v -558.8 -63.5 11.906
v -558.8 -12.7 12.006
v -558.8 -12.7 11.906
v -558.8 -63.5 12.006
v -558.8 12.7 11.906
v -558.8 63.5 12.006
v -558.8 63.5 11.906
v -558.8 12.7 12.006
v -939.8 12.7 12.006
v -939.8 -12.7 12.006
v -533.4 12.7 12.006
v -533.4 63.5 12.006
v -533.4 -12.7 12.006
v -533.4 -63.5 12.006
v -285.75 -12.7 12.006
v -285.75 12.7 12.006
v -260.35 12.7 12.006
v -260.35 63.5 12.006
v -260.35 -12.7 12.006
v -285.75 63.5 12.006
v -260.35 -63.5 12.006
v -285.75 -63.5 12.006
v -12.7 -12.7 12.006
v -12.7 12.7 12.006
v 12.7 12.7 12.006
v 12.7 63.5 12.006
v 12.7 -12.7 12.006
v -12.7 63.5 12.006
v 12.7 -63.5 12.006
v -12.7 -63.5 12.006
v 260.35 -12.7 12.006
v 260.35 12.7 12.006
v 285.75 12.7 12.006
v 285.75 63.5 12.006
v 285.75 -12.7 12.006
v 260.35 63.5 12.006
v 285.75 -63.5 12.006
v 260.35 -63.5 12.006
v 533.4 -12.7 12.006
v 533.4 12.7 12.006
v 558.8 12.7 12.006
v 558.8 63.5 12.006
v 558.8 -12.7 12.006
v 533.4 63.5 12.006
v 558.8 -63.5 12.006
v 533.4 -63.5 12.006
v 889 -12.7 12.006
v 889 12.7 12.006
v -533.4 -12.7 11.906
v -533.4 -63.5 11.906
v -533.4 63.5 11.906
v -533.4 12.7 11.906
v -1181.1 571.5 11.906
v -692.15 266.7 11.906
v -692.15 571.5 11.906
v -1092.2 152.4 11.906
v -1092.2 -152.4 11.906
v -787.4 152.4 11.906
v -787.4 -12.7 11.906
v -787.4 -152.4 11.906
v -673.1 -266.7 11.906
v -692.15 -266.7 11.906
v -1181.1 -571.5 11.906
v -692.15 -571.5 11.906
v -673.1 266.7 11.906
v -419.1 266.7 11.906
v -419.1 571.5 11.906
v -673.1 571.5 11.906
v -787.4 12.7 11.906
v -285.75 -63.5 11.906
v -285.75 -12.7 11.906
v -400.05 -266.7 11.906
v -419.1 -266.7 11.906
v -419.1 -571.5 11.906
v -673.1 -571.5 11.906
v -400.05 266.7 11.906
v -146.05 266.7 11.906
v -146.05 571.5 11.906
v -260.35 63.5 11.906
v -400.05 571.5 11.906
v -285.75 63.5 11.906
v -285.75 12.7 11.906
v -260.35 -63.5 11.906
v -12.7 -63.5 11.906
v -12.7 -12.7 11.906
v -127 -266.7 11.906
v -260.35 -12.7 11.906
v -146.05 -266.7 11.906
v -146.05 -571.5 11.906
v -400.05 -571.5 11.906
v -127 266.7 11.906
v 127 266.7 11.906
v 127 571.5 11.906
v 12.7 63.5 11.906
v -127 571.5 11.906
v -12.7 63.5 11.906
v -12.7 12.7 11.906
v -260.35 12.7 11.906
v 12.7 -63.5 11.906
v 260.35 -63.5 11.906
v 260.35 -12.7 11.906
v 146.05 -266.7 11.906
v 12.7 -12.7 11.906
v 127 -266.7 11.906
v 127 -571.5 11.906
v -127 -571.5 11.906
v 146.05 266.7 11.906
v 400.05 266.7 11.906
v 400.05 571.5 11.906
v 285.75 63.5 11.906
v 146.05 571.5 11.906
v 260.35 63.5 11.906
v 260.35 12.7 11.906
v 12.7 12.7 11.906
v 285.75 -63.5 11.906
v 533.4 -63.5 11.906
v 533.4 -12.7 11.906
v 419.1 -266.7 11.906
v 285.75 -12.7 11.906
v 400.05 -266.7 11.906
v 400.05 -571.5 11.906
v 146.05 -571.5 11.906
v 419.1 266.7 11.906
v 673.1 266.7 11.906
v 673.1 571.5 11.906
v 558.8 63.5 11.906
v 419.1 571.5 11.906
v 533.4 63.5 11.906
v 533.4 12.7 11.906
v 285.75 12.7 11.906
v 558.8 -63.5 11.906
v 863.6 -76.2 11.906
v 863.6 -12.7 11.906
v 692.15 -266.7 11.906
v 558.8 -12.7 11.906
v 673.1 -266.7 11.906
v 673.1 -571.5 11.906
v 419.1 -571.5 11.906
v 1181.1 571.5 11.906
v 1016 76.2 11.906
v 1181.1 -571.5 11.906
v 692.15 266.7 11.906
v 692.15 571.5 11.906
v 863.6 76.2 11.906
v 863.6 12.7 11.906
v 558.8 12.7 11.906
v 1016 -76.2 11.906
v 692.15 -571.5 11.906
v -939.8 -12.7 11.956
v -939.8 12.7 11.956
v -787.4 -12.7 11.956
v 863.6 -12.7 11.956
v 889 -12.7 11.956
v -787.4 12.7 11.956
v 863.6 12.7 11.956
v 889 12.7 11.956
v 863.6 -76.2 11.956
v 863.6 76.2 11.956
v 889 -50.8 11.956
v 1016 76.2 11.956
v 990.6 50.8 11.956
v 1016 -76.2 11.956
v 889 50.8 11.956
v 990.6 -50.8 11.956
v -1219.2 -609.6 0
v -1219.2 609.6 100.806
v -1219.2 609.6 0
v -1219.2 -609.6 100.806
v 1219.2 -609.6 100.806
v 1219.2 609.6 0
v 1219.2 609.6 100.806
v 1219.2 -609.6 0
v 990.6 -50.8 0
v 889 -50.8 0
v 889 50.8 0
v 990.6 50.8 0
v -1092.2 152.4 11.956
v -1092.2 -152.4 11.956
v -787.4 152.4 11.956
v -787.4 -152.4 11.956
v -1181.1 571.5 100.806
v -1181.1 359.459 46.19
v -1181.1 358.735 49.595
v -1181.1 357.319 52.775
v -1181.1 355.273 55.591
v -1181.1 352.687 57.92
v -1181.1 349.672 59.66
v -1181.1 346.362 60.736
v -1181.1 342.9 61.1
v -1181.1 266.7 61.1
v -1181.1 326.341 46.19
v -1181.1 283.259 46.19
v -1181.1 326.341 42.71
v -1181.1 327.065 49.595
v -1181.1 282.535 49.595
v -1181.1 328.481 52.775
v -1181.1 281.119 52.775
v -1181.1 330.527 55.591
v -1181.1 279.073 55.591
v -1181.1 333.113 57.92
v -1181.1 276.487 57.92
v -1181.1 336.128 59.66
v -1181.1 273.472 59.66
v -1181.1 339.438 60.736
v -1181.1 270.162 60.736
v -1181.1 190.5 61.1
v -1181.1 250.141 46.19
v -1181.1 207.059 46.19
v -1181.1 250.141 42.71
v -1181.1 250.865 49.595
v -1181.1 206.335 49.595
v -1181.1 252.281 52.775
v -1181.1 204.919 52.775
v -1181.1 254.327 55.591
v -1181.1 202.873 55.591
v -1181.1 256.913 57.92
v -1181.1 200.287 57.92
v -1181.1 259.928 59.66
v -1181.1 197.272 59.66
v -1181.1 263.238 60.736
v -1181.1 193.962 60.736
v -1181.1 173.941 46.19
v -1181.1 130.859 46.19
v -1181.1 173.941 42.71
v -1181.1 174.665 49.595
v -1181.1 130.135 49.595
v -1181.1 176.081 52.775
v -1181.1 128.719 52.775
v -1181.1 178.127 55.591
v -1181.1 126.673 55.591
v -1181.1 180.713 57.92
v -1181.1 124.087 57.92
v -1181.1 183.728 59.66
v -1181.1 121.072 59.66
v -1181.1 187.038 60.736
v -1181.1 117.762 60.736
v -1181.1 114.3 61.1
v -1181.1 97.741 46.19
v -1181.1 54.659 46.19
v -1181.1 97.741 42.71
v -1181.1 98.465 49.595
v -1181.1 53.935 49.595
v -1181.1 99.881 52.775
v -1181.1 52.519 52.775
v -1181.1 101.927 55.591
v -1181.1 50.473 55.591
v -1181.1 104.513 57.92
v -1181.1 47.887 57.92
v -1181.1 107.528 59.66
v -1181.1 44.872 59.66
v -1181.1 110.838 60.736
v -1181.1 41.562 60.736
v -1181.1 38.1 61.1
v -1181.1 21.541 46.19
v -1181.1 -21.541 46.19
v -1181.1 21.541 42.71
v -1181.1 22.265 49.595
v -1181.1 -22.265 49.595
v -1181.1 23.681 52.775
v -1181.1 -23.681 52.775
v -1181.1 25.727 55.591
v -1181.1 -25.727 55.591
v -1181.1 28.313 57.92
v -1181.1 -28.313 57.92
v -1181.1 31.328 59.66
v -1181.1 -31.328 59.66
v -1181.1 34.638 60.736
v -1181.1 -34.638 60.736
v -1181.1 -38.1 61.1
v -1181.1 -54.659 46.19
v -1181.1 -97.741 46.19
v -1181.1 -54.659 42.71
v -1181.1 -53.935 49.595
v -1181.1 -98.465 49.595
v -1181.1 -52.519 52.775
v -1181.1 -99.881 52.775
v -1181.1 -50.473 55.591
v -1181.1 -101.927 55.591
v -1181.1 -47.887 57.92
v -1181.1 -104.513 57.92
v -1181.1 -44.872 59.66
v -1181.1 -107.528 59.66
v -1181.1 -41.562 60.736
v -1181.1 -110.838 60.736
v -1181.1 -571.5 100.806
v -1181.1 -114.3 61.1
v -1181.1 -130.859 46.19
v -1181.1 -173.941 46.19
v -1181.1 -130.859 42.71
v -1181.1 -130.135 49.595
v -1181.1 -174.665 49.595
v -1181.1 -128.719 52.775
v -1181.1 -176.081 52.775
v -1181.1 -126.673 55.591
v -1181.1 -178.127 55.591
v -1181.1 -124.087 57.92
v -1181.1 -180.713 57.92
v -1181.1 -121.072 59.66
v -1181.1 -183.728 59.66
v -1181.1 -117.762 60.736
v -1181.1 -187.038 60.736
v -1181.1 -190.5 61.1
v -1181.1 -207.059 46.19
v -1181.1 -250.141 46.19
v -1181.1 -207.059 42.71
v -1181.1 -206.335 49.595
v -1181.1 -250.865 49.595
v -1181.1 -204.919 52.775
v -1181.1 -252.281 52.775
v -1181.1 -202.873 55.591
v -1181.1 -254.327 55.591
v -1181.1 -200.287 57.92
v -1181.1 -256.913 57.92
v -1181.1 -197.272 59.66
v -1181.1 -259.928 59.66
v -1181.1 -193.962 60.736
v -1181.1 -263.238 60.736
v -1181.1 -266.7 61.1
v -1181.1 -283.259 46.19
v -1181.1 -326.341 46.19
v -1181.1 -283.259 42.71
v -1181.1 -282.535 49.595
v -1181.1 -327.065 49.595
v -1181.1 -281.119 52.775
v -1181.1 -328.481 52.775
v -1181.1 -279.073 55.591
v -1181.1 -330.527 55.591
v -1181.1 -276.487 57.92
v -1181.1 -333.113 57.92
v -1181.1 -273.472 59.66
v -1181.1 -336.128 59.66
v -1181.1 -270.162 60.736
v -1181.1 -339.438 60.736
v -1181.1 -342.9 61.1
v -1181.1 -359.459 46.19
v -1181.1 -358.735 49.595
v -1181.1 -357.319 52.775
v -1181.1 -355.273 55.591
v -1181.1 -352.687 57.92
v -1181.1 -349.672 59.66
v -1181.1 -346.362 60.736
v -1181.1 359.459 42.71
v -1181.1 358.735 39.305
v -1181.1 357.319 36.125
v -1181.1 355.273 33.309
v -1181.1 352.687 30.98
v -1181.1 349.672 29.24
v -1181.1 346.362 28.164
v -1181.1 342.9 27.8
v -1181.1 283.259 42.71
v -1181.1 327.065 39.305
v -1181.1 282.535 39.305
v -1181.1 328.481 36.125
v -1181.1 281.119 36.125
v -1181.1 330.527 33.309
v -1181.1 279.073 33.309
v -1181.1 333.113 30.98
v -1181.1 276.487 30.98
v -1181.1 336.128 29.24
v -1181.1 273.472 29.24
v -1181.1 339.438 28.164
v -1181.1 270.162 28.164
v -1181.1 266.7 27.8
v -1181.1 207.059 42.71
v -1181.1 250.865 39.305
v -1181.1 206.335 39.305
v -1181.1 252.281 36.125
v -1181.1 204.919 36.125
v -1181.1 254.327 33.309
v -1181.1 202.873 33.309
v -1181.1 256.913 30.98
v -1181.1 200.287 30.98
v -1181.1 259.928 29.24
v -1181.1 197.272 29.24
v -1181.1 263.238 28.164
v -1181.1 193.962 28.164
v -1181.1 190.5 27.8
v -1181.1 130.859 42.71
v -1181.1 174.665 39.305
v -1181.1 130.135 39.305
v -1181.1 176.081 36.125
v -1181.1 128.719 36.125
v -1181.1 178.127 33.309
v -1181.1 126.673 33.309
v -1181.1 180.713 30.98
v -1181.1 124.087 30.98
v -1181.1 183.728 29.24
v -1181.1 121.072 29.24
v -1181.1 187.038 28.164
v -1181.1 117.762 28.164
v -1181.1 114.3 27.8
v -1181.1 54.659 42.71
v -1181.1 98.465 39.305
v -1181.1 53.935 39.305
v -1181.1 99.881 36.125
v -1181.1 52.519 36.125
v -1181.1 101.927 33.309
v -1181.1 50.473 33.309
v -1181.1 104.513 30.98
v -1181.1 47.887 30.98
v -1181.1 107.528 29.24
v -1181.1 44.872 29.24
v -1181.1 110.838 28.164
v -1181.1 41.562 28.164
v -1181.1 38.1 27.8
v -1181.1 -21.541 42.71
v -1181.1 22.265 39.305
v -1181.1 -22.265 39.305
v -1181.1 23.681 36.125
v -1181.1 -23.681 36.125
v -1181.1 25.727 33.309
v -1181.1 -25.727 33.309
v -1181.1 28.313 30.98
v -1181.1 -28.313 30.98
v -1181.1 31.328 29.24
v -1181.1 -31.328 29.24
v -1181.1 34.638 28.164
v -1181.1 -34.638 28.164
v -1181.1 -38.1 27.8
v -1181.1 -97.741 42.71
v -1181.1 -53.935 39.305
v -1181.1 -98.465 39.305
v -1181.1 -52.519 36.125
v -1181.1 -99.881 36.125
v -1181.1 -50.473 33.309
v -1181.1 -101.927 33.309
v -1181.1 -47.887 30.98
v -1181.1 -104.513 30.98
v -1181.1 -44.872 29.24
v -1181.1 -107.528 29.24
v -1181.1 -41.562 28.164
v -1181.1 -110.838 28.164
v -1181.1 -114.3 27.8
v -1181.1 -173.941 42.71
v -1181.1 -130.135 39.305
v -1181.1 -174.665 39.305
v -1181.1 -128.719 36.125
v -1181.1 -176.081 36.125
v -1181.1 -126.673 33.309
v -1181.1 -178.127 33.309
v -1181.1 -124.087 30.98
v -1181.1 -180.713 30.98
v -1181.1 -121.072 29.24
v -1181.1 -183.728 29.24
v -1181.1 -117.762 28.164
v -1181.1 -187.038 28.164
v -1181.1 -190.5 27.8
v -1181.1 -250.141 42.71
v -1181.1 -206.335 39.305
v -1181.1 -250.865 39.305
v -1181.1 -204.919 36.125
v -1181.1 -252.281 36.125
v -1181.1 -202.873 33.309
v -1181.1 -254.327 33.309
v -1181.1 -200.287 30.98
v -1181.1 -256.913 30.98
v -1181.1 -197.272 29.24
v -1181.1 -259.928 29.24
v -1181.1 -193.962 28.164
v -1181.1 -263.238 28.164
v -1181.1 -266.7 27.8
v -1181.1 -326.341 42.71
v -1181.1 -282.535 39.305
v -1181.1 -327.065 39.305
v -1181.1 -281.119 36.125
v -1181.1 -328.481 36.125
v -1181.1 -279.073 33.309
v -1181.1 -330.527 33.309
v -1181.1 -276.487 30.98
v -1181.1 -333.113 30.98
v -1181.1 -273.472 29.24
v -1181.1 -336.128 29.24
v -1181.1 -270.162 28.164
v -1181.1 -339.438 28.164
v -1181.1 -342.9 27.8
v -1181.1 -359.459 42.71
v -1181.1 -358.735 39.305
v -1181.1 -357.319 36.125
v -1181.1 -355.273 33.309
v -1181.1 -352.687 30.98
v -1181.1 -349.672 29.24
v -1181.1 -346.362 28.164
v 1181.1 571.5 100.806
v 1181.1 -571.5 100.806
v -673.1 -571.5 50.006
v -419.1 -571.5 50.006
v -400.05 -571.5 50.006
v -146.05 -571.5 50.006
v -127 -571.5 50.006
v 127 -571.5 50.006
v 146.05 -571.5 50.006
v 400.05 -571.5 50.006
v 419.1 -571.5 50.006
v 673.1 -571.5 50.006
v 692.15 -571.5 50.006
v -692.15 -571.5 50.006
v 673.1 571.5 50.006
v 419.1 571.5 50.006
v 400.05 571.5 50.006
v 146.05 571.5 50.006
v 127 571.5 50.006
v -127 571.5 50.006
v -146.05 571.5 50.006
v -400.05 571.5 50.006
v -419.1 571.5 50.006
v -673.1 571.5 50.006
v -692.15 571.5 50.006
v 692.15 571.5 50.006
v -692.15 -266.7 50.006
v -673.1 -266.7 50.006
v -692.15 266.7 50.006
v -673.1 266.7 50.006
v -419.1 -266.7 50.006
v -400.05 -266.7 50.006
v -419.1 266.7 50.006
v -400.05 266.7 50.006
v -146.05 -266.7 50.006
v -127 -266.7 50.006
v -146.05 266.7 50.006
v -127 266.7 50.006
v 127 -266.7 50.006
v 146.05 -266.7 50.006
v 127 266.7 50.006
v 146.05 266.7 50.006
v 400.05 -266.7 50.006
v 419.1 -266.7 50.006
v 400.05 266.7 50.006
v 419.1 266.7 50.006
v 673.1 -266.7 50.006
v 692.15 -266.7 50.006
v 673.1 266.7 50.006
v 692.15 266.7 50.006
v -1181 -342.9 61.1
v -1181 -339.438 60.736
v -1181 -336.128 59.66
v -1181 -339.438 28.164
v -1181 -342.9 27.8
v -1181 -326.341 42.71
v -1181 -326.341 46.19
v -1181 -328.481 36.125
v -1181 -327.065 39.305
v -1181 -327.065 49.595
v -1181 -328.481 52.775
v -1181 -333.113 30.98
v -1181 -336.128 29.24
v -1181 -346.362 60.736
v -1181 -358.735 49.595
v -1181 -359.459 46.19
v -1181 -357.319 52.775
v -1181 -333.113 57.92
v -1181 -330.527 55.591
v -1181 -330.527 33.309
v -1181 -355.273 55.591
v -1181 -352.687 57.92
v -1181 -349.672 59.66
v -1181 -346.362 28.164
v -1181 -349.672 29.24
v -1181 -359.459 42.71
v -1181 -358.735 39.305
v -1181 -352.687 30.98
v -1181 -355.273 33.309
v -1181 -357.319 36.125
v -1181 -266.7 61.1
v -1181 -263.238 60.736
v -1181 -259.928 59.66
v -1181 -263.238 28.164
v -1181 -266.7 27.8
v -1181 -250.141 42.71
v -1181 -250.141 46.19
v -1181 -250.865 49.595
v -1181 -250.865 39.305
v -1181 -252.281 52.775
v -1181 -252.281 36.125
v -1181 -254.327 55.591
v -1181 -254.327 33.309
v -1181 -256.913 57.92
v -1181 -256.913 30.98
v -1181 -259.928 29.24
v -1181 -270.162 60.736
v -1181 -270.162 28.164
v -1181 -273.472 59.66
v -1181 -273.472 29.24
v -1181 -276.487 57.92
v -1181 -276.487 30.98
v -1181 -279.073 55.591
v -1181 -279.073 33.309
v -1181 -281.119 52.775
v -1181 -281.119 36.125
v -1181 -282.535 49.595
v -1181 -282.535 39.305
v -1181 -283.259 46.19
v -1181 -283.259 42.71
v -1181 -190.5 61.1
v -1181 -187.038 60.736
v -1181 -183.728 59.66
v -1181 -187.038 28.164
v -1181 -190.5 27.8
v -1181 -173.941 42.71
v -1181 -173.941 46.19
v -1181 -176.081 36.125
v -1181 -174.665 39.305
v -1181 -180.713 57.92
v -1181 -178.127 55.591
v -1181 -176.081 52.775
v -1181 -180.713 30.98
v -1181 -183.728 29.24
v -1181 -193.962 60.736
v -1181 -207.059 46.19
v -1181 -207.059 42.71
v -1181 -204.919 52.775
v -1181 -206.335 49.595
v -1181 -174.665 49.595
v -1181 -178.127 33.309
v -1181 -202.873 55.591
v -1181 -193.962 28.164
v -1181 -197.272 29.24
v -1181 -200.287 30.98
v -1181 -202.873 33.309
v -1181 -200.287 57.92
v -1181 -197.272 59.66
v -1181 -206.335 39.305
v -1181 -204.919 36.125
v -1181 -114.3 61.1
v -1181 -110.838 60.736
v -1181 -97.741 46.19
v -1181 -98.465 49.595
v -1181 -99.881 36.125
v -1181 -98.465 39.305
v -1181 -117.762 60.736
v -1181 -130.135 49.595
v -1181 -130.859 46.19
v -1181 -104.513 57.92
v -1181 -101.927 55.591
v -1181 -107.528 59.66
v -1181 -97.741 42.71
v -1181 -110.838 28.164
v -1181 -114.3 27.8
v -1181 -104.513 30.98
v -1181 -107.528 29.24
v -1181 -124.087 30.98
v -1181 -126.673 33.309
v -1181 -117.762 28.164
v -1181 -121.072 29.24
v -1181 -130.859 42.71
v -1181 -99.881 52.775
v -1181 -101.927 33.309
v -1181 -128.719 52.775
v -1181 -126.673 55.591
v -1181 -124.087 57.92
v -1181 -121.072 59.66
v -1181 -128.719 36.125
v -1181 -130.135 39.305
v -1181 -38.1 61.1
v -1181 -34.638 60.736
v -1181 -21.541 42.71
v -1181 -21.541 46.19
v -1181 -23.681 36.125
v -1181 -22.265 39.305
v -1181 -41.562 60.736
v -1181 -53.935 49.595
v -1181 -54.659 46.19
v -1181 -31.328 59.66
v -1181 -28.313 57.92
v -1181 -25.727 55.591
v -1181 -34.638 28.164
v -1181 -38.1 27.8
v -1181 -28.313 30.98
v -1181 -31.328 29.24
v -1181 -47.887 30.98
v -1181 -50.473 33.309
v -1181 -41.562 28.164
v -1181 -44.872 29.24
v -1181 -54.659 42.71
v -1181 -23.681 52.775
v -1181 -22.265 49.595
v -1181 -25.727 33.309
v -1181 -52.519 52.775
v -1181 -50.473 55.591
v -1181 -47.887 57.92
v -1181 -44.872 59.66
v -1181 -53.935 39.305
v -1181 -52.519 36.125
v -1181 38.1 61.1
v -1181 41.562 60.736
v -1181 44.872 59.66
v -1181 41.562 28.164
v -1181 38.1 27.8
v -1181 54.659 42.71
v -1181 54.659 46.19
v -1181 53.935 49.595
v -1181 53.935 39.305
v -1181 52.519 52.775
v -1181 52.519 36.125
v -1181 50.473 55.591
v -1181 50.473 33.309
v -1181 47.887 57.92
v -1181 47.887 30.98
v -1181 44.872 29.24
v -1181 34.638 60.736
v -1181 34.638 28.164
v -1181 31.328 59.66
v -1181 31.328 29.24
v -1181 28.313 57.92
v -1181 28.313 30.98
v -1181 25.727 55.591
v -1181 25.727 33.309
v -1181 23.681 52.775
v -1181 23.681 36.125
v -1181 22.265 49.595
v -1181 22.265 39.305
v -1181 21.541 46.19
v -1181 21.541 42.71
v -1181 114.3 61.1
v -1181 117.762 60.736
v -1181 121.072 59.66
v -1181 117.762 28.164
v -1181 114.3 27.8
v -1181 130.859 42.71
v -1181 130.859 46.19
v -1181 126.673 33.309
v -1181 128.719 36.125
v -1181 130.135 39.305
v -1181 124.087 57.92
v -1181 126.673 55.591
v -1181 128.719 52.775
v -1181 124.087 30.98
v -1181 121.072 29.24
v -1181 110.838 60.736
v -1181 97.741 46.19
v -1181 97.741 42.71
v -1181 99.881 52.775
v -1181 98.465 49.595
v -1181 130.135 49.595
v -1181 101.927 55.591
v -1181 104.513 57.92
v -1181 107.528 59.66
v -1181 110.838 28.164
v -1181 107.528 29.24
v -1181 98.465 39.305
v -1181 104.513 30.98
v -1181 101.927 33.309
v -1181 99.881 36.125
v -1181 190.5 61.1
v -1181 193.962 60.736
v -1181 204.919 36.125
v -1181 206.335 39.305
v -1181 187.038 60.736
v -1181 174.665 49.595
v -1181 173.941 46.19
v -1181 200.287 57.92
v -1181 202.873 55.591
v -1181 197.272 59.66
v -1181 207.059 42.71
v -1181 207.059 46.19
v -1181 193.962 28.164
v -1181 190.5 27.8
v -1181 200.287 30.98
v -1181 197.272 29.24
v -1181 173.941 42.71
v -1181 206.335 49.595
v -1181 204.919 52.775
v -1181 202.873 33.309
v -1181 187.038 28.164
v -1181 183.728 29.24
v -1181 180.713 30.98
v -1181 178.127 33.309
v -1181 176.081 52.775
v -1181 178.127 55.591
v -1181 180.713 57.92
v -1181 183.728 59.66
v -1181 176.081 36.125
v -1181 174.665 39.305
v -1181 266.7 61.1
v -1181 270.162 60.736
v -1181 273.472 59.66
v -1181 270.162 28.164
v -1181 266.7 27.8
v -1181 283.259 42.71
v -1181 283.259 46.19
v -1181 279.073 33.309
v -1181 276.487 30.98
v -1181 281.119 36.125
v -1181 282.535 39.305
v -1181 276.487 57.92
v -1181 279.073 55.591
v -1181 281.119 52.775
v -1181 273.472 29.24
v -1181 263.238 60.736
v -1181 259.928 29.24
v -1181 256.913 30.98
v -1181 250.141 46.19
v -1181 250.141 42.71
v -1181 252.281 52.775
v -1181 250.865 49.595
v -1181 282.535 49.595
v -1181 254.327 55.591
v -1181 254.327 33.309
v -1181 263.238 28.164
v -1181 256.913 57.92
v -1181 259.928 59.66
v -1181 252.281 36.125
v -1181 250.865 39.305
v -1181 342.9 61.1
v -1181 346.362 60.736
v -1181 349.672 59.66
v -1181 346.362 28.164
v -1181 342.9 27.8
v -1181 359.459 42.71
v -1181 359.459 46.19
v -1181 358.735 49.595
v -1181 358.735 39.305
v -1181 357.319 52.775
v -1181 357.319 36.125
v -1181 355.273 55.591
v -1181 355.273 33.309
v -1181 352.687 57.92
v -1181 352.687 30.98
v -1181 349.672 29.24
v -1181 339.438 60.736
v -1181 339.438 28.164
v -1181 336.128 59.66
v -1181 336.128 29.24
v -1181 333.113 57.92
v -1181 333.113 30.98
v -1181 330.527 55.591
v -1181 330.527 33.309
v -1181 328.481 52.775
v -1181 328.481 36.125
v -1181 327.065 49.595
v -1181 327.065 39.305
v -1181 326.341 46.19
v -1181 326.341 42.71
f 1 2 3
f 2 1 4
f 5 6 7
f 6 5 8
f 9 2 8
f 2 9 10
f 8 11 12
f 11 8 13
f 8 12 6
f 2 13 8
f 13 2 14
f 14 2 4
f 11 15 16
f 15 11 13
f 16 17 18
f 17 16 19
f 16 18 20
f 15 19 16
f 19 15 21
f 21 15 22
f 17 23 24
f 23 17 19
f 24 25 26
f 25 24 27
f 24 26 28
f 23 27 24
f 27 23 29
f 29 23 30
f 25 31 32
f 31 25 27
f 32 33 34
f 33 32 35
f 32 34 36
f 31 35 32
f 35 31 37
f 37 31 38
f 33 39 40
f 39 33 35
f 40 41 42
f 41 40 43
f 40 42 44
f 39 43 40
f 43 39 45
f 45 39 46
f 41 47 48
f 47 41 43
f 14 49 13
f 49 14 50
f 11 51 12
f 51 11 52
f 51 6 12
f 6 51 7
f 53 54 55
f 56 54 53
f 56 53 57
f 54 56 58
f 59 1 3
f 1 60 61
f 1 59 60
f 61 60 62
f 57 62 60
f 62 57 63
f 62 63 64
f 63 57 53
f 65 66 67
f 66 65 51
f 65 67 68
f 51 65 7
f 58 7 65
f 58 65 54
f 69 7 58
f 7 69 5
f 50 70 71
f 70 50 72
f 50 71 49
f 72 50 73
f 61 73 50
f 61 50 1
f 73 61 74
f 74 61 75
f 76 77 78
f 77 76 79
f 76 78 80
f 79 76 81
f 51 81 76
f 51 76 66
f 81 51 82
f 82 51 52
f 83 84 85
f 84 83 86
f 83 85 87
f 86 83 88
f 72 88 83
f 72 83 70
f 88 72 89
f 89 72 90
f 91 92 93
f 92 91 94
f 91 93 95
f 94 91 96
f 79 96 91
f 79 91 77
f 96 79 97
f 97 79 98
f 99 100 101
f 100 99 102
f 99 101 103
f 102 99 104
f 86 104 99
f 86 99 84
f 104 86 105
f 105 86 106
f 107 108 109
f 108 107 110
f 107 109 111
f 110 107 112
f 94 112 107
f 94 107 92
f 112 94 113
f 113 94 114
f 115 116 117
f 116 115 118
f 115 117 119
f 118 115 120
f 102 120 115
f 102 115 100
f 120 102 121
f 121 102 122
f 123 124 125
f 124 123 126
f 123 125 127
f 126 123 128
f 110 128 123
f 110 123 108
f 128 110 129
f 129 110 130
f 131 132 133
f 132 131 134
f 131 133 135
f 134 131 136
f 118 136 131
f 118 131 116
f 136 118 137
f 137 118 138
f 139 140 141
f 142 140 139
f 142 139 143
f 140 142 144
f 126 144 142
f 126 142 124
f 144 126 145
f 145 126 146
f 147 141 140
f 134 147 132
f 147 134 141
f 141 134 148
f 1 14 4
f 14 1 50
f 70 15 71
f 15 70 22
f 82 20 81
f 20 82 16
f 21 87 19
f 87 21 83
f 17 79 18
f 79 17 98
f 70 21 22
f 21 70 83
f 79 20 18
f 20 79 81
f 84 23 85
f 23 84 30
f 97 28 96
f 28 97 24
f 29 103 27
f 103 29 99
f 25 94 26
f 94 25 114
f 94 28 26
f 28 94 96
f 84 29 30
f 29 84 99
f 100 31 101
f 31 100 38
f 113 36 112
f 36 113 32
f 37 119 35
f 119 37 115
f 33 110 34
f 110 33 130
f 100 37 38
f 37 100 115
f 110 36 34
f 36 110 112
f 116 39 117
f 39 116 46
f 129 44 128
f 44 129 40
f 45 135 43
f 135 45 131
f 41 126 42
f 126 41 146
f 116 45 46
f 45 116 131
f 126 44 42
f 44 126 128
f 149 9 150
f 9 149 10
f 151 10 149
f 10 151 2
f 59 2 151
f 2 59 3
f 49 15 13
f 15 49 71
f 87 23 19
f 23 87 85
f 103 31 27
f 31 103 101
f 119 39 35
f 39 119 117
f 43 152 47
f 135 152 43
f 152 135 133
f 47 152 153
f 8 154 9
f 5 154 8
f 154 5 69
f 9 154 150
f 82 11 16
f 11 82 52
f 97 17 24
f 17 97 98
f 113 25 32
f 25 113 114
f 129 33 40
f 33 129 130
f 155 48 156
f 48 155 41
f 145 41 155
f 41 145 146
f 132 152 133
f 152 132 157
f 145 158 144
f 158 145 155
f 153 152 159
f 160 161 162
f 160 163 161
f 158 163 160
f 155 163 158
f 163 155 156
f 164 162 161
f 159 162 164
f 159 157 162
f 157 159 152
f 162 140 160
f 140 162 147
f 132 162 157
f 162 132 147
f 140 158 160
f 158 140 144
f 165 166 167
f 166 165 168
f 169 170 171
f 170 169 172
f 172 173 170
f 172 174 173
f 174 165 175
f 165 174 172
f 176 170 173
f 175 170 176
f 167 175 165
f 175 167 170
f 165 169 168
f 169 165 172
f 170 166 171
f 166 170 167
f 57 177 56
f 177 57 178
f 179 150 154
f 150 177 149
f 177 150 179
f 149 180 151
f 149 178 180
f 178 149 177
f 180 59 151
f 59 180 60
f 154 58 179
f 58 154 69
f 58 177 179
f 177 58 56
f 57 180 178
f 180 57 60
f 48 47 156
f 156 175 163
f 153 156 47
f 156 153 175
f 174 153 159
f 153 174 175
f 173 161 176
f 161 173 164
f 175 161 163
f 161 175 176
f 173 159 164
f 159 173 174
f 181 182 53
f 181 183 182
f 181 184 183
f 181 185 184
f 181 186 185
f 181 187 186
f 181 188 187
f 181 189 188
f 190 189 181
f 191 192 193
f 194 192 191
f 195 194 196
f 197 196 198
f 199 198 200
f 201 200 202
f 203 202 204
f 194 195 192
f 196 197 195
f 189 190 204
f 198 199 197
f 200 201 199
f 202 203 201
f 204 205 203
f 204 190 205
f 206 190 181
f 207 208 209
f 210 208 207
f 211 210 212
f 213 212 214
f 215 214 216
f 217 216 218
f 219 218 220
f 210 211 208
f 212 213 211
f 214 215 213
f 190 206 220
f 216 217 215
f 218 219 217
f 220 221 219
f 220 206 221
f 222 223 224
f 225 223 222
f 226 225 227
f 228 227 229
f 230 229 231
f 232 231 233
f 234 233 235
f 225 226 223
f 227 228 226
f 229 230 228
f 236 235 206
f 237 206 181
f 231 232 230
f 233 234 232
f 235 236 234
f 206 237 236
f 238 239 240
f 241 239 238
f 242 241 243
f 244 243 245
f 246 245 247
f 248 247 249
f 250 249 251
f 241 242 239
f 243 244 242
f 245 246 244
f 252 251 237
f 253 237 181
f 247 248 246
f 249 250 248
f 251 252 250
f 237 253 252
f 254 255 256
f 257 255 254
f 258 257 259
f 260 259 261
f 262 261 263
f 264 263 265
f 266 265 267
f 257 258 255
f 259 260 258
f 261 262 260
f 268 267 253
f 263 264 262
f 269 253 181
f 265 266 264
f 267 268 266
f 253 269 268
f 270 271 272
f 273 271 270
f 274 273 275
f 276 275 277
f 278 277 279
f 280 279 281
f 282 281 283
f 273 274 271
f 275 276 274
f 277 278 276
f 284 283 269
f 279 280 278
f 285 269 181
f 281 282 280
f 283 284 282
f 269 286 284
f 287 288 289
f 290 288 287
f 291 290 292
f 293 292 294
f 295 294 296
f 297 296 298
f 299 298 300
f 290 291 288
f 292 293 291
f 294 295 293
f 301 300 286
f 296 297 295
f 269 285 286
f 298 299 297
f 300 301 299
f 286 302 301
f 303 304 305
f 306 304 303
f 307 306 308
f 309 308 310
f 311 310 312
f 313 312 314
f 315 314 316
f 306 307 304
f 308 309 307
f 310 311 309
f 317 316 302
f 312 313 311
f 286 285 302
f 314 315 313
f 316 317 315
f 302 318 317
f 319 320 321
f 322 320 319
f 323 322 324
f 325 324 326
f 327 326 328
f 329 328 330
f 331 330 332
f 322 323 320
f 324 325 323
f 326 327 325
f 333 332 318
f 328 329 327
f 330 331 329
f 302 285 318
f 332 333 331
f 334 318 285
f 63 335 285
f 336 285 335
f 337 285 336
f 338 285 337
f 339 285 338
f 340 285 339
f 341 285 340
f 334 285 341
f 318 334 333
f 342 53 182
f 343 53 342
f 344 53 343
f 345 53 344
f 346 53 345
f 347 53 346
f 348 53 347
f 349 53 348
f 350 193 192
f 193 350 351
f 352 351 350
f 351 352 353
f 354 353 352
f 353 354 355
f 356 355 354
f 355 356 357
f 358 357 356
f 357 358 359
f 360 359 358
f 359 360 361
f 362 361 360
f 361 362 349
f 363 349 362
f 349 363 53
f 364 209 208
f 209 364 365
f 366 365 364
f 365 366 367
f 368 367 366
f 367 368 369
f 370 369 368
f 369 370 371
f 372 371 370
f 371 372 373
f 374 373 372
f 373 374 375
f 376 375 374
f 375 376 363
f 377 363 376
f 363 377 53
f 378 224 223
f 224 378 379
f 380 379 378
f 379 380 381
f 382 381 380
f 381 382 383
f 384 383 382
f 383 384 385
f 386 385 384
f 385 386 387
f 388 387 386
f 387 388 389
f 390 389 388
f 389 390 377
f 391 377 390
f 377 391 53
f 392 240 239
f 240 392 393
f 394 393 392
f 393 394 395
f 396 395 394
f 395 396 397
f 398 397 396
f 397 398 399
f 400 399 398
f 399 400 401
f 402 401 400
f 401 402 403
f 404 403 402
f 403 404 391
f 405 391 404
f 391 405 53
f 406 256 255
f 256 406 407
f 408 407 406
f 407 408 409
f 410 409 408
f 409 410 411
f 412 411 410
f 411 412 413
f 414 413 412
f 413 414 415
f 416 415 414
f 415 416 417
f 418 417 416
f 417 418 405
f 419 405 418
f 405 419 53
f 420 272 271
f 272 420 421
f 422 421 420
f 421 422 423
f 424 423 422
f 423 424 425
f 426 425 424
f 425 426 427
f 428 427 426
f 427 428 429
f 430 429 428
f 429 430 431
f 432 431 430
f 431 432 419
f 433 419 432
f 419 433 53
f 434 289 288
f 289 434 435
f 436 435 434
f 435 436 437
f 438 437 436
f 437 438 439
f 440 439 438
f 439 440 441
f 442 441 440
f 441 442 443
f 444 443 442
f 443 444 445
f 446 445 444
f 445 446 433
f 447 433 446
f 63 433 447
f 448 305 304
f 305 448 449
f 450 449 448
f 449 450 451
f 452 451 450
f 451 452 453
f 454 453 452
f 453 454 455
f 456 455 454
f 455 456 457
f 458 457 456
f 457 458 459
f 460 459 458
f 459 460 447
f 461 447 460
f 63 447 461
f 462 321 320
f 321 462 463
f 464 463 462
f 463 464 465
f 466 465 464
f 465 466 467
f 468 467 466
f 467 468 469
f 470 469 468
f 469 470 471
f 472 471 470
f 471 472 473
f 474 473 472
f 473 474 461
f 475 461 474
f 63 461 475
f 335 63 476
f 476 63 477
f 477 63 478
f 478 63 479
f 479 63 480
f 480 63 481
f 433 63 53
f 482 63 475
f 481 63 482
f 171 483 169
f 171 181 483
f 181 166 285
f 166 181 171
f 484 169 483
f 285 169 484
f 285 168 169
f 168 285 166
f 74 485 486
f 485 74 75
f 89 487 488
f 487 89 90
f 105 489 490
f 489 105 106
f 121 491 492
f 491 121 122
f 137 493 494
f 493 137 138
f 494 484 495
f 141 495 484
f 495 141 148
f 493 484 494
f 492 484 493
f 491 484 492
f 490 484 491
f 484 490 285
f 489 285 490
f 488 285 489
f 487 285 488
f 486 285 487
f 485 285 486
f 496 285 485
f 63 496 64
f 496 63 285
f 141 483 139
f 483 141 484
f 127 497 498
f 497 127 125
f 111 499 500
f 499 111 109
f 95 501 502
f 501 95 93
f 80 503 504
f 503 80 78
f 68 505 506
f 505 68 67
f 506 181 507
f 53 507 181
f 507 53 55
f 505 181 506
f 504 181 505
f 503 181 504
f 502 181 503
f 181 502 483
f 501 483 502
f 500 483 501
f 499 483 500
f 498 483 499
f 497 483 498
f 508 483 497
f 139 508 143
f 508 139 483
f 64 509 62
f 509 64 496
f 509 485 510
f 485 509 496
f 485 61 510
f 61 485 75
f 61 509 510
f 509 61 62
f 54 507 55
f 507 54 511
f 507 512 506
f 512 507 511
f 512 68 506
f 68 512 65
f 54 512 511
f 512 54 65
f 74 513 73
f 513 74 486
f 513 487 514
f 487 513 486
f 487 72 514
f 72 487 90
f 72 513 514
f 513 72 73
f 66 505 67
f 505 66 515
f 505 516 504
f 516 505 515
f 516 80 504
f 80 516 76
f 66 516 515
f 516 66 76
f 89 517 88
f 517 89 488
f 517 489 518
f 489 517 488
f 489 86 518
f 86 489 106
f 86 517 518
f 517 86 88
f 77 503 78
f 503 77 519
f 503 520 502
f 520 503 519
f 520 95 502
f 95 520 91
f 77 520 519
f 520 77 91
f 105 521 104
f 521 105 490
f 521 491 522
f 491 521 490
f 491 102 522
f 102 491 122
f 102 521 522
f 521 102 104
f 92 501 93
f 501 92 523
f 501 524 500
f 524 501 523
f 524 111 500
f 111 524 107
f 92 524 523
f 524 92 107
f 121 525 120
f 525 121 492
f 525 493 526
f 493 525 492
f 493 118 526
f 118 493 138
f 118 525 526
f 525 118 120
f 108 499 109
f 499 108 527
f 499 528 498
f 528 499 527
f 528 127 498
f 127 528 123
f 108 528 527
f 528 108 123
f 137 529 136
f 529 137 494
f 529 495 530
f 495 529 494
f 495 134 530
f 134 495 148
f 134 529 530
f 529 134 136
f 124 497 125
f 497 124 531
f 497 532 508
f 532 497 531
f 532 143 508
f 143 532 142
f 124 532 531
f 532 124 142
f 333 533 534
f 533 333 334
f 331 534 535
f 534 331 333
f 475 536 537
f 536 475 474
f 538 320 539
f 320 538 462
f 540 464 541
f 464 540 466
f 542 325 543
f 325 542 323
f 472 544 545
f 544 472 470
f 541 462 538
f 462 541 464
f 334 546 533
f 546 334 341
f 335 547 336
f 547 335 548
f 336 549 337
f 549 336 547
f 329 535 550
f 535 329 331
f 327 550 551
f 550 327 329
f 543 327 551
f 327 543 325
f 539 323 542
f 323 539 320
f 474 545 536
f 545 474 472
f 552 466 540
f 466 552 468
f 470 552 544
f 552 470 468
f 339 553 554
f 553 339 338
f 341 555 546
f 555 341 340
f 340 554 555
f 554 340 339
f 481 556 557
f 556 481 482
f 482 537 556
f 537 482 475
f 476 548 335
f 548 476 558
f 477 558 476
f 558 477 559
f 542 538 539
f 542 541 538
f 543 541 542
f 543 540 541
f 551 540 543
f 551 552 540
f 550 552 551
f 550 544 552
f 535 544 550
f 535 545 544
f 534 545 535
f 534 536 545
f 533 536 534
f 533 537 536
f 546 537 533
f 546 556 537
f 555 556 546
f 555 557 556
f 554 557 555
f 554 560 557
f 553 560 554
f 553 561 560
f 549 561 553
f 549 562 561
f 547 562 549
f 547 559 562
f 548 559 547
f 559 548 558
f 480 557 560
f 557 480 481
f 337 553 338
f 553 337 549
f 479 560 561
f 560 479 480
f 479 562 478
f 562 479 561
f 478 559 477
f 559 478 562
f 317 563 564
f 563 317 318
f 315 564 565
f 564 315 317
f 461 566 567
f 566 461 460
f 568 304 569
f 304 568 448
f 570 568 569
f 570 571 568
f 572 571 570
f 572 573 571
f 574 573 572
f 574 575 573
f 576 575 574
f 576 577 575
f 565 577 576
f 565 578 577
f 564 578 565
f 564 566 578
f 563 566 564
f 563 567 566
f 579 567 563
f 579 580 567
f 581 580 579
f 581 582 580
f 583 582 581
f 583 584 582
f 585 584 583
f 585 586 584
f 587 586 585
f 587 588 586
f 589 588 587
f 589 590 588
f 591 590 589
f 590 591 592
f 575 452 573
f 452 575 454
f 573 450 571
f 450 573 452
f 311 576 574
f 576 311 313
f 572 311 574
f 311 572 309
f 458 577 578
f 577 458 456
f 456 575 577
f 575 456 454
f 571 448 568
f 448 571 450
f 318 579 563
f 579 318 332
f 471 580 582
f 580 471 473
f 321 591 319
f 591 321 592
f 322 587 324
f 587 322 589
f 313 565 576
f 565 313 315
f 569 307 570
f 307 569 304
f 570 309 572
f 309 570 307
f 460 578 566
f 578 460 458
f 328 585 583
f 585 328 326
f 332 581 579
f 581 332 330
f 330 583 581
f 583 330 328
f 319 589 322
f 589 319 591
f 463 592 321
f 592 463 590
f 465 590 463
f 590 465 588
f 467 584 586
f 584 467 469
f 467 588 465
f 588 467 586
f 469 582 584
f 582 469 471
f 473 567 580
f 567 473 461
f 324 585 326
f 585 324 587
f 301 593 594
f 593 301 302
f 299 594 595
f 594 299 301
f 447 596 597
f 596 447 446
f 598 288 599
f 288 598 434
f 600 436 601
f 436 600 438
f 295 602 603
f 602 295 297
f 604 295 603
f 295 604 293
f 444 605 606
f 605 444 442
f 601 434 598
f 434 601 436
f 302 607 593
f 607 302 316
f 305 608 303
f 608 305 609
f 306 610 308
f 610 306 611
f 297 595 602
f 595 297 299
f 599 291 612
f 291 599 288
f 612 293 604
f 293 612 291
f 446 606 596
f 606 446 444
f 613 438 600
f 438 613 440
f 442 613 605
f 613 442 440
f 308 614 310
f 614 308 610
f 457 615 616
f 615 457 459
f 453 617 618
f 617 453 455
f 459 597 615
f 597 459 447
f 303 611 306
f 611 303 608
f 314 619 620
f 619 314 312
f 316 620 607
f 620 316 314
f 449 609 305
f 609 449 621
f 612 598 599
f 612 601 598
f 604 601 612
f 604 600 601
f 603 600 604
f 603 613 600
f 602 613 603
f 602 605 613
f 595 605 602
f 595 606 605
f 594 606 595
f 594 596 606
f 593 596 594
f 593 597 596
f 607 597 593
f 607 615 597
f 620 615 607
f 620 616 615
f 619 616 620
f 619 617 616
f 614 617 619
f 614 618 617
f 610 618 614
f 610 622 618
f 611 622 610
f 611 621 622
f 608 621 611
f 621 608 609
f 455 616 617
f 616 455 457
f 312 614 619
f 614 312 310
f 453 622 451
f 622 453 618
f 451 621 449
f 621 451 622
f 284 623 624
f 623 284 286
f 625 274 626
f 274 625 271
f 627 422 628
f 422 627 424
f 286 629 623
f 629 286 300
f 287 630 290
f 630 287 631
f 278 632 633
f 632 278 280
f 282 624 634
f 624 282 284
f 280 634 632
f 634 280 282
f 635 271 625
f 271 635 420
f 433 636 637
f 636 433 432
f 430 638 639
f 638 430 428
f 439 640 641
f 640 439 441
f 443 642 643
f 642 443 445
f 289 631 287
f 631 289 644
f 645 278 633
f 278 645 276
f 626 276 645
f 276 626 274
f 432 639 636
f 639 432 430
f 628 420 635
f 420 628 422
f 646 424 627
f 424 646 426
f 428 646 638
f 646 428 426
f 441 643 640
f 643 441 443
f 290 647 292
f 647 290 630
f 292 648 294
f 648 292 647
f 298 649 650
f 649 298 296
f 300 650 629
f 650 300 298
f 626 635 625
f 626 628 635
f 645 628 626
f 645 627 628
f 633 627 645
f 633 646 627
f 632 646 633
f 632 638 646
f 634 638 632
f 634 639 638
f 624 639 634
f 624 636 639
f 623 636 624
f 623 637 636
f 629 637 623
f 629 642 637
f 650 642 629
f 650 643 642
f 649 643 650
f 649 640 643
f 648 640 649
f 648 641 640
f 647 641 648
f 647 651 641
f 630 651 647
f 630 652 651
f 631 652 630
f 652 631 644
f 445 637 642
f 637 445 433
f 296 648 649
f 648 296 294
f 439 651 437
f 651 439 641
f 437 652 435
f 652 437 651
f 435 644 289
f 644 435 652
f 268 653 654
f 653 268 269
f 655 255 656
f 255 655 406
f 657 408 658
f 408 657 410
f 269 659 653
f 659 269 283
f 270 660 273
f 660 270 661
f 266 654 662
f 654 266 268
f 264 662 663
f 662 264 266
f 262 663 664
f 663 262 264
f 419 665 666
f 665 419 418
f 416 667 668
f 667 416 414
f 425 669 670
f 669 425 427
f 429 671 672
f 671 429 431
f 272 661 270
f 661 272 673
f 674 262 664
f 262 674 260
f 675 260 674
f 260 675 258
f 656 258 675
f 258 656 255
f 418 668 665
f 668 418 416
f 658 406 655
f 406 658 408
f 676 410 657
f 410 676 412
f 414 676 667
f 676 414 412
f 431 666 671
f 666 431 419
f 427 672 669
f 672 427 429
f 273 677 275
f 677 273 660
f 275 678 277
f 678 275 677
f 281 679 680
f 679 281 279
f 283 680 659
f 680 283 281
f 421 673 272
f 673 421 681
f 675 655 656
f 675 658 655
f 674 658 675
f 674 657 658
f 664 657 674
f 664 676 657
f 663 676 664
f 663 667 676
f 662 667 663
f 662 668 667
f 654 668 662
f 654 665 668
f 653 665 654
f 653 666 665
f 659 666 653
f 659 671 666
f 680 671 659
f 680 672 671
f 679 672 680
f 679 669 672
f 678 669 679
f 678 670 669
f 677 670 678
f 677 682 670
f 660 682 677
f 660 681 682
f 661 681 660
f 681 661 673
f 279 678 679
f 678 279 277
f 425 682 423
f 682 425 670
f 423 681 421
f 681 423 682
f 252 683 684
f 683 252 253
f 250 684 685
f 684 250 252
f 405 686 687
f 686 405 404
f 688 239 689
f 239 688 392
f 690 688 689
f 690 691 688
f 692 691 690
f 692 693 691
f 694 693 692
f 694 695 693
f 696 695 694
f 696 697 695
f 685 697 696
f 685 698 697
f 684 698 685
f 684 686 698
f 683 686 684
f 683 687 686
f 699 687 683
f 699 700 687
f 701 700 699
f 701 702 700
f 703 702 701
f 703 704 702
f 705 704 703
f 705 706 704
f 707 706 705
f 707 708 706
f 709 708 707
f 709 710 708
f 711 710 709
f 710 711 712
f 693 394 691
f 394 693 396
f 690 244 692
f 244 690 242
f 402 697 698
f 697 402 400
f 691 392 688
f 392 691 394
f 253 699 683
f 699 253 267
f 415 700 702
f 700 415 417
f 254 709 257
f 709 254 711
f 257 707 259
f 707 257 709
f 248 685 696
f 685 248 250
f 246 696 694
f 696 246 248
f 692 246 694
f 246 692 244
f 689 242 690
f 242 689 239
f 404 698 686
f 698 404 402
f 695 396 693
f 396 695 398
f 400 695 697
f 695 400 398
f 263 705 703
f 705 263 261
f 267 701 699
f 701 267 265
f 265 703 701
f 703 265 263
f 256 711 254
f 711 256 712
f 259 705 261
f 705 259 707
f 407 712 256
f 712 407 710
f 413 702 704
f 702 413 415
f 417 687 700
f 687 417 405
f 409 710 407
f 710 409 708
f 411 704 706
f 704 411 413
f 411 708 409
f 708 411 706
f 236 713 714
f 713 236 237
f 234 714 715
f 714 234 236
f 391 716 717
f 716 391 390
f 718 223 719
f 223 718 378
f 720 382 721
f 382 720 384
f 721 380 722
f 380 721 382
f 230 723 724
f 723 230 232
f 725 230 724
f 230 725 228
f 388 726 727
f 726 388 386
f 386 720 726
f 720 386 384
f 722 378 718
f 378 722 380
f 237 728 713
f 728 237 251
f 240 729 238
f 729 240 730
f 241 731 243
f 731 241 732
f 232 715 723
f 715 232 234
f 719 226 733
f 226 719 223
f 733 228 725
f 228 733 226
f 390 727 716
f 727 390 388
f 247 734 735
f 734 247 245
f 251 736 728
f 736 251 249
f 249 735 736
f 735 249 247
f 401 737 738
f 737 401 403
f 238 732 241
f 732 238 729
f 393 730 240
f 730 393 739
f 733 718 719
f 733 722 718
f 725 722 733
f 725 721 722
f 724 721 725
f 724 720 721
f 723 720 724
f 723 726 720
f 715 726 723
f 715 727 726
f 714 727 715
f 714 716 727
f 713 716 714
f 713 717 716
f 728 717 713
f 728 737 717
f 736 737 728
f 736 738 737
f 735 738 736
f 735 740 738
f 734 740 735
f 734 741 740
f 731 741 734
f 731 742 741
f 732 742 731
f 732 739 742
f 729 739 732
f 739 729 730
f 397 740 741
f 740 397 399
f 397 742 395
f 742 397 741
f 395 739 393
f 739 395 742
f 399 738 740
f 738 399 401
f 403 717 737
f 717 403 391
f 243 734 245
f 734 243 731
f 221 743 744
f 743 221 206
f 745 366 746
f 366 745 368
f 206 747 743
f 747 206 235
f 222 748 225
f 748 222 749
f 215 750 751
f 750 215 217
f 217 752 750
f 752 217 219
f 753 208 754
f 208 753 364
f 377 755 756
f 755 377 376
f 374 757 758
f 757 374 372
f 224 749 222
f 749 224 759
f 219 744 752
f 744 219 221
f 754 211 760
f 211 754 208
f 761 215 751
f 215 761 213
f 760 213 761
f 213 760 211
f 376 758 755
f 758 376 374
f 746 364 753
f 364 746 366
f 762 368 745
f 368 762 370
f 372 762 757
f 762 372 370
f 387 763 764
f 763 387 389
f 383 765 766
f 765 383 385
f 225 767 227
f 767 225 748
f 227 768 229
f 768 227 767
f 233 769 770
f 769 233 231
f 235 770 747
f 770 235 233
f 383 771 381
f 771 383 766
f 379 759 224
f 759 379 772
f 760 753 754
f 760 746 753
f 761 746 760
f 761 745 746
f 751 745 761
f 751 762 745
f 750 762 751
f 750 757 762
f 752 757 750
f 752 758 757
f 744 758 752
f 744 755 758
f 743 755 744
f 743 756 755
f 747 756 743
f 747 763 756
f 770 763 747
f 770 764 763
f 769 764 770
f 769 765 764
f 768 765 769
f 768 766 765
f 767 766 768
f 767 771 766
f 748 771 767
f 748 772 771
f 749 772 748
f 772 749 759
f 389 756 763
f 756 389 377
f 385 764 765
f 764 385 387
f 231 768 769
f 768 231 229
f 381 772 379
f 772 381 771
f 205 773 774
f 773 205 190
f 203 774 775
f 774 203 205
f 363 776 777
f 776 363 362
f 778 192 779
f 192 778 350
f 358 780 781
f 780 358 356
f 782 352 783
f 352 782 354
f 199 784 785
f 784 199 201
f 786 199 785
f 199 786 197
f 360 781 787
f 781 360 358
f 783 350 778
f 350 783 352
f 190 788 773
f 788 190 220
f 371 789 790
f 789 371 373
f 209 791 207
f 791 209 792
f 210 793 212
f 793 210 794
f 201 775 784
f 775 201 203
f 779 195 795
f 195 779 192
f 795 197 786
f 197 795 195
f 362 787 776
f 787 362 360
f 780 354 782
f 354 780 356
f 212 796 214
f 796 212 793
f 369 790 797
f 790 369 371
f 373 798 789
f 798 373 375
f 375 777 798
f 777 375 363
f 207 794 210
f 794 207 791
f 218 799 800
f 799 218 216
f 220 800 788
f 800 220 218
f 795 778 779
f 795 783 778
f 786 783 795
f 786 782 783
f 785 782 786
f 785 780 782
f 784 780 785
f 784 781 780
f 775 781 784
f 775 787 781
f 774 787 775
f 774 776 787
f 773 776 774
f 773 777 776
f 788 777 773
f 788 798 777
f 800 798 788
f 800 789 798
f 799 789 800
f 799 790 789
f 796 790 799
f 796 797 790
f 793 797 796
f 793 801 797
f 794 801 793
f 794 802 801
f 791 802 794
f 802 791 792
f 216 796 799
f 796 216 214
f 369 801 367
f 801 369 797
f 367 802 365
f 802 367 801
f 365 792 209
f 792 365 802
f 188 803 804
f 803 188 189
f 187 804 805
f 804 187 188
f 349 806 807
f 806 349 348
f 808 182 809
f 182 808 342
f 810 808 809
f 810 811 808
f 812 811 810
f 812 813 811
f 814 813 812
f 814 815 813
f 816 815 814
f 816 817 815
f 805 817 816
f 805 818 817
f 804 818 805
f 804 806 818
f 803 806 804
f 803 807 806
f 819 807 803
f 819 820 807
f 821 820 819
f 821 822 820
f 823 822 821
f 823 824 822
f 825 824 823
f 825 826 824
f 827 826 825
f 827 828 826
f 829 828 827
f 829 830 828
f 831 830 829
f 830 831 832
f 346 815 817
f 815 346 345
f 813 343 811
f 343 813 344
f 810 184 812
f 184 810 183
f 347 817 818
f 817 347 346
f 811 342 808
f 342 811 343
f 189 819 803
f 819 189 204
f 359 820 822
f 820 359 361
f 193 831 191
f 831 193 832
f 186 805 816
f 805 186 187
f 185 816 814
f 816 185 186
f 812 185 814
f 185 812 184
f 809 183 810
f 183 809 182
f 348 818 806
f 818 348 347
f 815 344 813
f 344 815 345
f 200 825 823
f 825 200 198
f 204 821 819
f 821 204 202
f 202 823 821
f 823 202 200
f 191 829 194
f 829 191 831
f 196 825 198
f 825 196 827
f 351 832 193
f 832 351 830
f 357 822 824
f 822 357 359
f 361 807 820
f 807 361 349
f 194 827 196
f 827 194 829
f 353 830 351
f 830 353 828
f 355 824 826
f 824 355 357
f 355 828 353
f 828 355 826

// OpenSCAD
// ****************************************************************
// 2020 IEEE SoutheastCon Hardware Competition
// Pi-Day competition
// ****************************************************************

// Conversion factors
inch  = 25.4; // mm to inch conversion
fudge = 0.1;  // mm for z-fighting

// Standard lumber dimensions
by1 = 0.75*inch;
by2 = 1.5*inch;
by4 = 3.5*inch;
halfInchPly = 15/32*inch; // nominal 0.5"

// Arena drawFloor dimensions
arenaX = 8*12*inch;
arenaY = 4*12*inch;
arenaZ = halfInchPly;

// Arena colors
floor_color  = "black";
wall_color   = "yellow";
stripe_color = "white";
button_color = "red";

stripeWidth = 1*inch;
markerWidth = 5*inch;

// Starting square and tower hole dimensions
startSquare = 12*inch;
startCenterOffset = by2 + 9.5*inch;
holeSize    = 4*inch;
holeCenterOffset = arenaX - by2 - 9.5*inch;

binWidth = 10*inch;
binDepth = 12*inch;
bin1Xoffset = arenaX/2 - (2.5*binWidth) - 3*by1;

buttonSpacing = 3*inch;



// ****************************************************************
// Draw the center line and the bin navigation marker lines
// ****************************************************************

module drawFloorLines()
{
    color(stripe_color) {

        // Stripe down the middle of the bins
        translate([startCenterOffset, (arenaY-stripeWidth)/2, arenaZ])
           cube([holeCenterOffset - startCenterOffset, stripeWidth, fudge]);

        // Draw the alignment markers for each bin on middle line
        for(bin=[0:4]) {
           translate([bin1Xoffset + 
                     (bin+1)*by1 + 
                     (bin+0.5)*binWidth -
                     stripeWidth/2,
                     (arenaY-markerWidth)/2, arenaZ])
              cube([stripeWidth, markerWidth, fudge]);
        }

        // Draw the square around the tower hole
        translate([holeCenterOffset,arenaY/2,arenaZ])
           cube([holeSize+2*stripeWidth,
                 holeSize+2*stripeWidth,
                 fudge], center=true);

    }
}


// ****************************************************************
// Draw the starting square
// ****************************************************************

module drawStartingSquare()
{
    color(stripe_color) 
        translate([startCenterOffset, arenaY/2, arenaZ])
        cube([startSquare, startSquare, fudge], center=true);
}


// ****************************************************************
// Draw the floor of the arena (4' x 8' black plywood), with a hole
//    cut out of it on end for the stacking tower (teams are 
//    responsible for providing their own stacking surface to 
//    place within the hold to isolate it from the vibrations of
//    the arena floor)
// ****************************************************************

module drawFloor()
{
    difference() {
       union() {
           // First draw the plywood floor
           color(floor_color) 
               cube([arenaX, arenaY, arenaZ]);
           drawFloorLines();
           drawStartingSquare();
       }

       // Then cut a hole out of the middle of it
       translate([holeCenterOffset,arenaY/2,-fudge])
          cube([holeSize,holeSize,(arenaZ+fudge)*3], center=true);
    }
}


// ****************************************************************
// Draw the 2x4 walls
// ****************************************************************

module drawWalls()
{
    color(wall_color) union() {

        // left wall
        translate([by2, 0, arenaZ]) 
           cube([arenaX-by2, by2, by4]);

        // right wall
        translate([0, arenaY-by2, arenaZ]) 
           cube([arenaX-by2, by2, by4]);

        // front wall (nearest tower hole)
        translate([arenaX-by2, by2, arenaZ]) 
           cube([by2, arenaY-by2, by4]);

        // back wall (pushbutton wall)
        translate([0, 0, arenaZ]) 
           cube([by2, arenaY-by2, by4]);
    }
}


// ****************************************************************
// Each bin wall is a 1x2, mounted with the 3/4" side on the plywood
//    and the 1.5" standing vertical - one wall between each bin and
//    since we have 5 bins on each wall, that is 6 walls on each side
// ****************************************************************

module drawBinWalls()
{
    color(wall_color) {

        for(wall=[0:5]) {
           translate([bin1Xoffset + wall*(binWidth+by1), 0, arenaZ]) {
              translate([0, by2, 0])
                 cube([by1,binDepth,by2]);
              translate([0, arenaY - by2 - binDepth, 0])
                 cube([by1,binDepth,by2]);
           }
        }
    }
}



// ****************************************************************
// Draw the pushbuttons
// ****************************************************************

module drawPushbuttons()
{
    for(button=[0:9]) {
        translate([by2+fudge, 
                   (button - 4.5) * buttonSpacing + arenaY/2,
                   by4/2])
        rotate([0, -90, 0])
            color(button_color)
               cylinder(r=16.65, h=by2+fudge);
    }
}


// ****************************************************************
// Draw the entire arena by invoking each of the arena drawing modules
// ****************************************************************

module drawArena()
{
    drawFloor();
    drawWalls(); 
    drawBinWalls();
    drawPushbuttons();
}


// ****************************************************************
// Draw the arena, centering it over [0,0,0]
// ****************************************************************

translate([-arenaX/2,-arenaY/2, 0]) 
   drawArena();    
